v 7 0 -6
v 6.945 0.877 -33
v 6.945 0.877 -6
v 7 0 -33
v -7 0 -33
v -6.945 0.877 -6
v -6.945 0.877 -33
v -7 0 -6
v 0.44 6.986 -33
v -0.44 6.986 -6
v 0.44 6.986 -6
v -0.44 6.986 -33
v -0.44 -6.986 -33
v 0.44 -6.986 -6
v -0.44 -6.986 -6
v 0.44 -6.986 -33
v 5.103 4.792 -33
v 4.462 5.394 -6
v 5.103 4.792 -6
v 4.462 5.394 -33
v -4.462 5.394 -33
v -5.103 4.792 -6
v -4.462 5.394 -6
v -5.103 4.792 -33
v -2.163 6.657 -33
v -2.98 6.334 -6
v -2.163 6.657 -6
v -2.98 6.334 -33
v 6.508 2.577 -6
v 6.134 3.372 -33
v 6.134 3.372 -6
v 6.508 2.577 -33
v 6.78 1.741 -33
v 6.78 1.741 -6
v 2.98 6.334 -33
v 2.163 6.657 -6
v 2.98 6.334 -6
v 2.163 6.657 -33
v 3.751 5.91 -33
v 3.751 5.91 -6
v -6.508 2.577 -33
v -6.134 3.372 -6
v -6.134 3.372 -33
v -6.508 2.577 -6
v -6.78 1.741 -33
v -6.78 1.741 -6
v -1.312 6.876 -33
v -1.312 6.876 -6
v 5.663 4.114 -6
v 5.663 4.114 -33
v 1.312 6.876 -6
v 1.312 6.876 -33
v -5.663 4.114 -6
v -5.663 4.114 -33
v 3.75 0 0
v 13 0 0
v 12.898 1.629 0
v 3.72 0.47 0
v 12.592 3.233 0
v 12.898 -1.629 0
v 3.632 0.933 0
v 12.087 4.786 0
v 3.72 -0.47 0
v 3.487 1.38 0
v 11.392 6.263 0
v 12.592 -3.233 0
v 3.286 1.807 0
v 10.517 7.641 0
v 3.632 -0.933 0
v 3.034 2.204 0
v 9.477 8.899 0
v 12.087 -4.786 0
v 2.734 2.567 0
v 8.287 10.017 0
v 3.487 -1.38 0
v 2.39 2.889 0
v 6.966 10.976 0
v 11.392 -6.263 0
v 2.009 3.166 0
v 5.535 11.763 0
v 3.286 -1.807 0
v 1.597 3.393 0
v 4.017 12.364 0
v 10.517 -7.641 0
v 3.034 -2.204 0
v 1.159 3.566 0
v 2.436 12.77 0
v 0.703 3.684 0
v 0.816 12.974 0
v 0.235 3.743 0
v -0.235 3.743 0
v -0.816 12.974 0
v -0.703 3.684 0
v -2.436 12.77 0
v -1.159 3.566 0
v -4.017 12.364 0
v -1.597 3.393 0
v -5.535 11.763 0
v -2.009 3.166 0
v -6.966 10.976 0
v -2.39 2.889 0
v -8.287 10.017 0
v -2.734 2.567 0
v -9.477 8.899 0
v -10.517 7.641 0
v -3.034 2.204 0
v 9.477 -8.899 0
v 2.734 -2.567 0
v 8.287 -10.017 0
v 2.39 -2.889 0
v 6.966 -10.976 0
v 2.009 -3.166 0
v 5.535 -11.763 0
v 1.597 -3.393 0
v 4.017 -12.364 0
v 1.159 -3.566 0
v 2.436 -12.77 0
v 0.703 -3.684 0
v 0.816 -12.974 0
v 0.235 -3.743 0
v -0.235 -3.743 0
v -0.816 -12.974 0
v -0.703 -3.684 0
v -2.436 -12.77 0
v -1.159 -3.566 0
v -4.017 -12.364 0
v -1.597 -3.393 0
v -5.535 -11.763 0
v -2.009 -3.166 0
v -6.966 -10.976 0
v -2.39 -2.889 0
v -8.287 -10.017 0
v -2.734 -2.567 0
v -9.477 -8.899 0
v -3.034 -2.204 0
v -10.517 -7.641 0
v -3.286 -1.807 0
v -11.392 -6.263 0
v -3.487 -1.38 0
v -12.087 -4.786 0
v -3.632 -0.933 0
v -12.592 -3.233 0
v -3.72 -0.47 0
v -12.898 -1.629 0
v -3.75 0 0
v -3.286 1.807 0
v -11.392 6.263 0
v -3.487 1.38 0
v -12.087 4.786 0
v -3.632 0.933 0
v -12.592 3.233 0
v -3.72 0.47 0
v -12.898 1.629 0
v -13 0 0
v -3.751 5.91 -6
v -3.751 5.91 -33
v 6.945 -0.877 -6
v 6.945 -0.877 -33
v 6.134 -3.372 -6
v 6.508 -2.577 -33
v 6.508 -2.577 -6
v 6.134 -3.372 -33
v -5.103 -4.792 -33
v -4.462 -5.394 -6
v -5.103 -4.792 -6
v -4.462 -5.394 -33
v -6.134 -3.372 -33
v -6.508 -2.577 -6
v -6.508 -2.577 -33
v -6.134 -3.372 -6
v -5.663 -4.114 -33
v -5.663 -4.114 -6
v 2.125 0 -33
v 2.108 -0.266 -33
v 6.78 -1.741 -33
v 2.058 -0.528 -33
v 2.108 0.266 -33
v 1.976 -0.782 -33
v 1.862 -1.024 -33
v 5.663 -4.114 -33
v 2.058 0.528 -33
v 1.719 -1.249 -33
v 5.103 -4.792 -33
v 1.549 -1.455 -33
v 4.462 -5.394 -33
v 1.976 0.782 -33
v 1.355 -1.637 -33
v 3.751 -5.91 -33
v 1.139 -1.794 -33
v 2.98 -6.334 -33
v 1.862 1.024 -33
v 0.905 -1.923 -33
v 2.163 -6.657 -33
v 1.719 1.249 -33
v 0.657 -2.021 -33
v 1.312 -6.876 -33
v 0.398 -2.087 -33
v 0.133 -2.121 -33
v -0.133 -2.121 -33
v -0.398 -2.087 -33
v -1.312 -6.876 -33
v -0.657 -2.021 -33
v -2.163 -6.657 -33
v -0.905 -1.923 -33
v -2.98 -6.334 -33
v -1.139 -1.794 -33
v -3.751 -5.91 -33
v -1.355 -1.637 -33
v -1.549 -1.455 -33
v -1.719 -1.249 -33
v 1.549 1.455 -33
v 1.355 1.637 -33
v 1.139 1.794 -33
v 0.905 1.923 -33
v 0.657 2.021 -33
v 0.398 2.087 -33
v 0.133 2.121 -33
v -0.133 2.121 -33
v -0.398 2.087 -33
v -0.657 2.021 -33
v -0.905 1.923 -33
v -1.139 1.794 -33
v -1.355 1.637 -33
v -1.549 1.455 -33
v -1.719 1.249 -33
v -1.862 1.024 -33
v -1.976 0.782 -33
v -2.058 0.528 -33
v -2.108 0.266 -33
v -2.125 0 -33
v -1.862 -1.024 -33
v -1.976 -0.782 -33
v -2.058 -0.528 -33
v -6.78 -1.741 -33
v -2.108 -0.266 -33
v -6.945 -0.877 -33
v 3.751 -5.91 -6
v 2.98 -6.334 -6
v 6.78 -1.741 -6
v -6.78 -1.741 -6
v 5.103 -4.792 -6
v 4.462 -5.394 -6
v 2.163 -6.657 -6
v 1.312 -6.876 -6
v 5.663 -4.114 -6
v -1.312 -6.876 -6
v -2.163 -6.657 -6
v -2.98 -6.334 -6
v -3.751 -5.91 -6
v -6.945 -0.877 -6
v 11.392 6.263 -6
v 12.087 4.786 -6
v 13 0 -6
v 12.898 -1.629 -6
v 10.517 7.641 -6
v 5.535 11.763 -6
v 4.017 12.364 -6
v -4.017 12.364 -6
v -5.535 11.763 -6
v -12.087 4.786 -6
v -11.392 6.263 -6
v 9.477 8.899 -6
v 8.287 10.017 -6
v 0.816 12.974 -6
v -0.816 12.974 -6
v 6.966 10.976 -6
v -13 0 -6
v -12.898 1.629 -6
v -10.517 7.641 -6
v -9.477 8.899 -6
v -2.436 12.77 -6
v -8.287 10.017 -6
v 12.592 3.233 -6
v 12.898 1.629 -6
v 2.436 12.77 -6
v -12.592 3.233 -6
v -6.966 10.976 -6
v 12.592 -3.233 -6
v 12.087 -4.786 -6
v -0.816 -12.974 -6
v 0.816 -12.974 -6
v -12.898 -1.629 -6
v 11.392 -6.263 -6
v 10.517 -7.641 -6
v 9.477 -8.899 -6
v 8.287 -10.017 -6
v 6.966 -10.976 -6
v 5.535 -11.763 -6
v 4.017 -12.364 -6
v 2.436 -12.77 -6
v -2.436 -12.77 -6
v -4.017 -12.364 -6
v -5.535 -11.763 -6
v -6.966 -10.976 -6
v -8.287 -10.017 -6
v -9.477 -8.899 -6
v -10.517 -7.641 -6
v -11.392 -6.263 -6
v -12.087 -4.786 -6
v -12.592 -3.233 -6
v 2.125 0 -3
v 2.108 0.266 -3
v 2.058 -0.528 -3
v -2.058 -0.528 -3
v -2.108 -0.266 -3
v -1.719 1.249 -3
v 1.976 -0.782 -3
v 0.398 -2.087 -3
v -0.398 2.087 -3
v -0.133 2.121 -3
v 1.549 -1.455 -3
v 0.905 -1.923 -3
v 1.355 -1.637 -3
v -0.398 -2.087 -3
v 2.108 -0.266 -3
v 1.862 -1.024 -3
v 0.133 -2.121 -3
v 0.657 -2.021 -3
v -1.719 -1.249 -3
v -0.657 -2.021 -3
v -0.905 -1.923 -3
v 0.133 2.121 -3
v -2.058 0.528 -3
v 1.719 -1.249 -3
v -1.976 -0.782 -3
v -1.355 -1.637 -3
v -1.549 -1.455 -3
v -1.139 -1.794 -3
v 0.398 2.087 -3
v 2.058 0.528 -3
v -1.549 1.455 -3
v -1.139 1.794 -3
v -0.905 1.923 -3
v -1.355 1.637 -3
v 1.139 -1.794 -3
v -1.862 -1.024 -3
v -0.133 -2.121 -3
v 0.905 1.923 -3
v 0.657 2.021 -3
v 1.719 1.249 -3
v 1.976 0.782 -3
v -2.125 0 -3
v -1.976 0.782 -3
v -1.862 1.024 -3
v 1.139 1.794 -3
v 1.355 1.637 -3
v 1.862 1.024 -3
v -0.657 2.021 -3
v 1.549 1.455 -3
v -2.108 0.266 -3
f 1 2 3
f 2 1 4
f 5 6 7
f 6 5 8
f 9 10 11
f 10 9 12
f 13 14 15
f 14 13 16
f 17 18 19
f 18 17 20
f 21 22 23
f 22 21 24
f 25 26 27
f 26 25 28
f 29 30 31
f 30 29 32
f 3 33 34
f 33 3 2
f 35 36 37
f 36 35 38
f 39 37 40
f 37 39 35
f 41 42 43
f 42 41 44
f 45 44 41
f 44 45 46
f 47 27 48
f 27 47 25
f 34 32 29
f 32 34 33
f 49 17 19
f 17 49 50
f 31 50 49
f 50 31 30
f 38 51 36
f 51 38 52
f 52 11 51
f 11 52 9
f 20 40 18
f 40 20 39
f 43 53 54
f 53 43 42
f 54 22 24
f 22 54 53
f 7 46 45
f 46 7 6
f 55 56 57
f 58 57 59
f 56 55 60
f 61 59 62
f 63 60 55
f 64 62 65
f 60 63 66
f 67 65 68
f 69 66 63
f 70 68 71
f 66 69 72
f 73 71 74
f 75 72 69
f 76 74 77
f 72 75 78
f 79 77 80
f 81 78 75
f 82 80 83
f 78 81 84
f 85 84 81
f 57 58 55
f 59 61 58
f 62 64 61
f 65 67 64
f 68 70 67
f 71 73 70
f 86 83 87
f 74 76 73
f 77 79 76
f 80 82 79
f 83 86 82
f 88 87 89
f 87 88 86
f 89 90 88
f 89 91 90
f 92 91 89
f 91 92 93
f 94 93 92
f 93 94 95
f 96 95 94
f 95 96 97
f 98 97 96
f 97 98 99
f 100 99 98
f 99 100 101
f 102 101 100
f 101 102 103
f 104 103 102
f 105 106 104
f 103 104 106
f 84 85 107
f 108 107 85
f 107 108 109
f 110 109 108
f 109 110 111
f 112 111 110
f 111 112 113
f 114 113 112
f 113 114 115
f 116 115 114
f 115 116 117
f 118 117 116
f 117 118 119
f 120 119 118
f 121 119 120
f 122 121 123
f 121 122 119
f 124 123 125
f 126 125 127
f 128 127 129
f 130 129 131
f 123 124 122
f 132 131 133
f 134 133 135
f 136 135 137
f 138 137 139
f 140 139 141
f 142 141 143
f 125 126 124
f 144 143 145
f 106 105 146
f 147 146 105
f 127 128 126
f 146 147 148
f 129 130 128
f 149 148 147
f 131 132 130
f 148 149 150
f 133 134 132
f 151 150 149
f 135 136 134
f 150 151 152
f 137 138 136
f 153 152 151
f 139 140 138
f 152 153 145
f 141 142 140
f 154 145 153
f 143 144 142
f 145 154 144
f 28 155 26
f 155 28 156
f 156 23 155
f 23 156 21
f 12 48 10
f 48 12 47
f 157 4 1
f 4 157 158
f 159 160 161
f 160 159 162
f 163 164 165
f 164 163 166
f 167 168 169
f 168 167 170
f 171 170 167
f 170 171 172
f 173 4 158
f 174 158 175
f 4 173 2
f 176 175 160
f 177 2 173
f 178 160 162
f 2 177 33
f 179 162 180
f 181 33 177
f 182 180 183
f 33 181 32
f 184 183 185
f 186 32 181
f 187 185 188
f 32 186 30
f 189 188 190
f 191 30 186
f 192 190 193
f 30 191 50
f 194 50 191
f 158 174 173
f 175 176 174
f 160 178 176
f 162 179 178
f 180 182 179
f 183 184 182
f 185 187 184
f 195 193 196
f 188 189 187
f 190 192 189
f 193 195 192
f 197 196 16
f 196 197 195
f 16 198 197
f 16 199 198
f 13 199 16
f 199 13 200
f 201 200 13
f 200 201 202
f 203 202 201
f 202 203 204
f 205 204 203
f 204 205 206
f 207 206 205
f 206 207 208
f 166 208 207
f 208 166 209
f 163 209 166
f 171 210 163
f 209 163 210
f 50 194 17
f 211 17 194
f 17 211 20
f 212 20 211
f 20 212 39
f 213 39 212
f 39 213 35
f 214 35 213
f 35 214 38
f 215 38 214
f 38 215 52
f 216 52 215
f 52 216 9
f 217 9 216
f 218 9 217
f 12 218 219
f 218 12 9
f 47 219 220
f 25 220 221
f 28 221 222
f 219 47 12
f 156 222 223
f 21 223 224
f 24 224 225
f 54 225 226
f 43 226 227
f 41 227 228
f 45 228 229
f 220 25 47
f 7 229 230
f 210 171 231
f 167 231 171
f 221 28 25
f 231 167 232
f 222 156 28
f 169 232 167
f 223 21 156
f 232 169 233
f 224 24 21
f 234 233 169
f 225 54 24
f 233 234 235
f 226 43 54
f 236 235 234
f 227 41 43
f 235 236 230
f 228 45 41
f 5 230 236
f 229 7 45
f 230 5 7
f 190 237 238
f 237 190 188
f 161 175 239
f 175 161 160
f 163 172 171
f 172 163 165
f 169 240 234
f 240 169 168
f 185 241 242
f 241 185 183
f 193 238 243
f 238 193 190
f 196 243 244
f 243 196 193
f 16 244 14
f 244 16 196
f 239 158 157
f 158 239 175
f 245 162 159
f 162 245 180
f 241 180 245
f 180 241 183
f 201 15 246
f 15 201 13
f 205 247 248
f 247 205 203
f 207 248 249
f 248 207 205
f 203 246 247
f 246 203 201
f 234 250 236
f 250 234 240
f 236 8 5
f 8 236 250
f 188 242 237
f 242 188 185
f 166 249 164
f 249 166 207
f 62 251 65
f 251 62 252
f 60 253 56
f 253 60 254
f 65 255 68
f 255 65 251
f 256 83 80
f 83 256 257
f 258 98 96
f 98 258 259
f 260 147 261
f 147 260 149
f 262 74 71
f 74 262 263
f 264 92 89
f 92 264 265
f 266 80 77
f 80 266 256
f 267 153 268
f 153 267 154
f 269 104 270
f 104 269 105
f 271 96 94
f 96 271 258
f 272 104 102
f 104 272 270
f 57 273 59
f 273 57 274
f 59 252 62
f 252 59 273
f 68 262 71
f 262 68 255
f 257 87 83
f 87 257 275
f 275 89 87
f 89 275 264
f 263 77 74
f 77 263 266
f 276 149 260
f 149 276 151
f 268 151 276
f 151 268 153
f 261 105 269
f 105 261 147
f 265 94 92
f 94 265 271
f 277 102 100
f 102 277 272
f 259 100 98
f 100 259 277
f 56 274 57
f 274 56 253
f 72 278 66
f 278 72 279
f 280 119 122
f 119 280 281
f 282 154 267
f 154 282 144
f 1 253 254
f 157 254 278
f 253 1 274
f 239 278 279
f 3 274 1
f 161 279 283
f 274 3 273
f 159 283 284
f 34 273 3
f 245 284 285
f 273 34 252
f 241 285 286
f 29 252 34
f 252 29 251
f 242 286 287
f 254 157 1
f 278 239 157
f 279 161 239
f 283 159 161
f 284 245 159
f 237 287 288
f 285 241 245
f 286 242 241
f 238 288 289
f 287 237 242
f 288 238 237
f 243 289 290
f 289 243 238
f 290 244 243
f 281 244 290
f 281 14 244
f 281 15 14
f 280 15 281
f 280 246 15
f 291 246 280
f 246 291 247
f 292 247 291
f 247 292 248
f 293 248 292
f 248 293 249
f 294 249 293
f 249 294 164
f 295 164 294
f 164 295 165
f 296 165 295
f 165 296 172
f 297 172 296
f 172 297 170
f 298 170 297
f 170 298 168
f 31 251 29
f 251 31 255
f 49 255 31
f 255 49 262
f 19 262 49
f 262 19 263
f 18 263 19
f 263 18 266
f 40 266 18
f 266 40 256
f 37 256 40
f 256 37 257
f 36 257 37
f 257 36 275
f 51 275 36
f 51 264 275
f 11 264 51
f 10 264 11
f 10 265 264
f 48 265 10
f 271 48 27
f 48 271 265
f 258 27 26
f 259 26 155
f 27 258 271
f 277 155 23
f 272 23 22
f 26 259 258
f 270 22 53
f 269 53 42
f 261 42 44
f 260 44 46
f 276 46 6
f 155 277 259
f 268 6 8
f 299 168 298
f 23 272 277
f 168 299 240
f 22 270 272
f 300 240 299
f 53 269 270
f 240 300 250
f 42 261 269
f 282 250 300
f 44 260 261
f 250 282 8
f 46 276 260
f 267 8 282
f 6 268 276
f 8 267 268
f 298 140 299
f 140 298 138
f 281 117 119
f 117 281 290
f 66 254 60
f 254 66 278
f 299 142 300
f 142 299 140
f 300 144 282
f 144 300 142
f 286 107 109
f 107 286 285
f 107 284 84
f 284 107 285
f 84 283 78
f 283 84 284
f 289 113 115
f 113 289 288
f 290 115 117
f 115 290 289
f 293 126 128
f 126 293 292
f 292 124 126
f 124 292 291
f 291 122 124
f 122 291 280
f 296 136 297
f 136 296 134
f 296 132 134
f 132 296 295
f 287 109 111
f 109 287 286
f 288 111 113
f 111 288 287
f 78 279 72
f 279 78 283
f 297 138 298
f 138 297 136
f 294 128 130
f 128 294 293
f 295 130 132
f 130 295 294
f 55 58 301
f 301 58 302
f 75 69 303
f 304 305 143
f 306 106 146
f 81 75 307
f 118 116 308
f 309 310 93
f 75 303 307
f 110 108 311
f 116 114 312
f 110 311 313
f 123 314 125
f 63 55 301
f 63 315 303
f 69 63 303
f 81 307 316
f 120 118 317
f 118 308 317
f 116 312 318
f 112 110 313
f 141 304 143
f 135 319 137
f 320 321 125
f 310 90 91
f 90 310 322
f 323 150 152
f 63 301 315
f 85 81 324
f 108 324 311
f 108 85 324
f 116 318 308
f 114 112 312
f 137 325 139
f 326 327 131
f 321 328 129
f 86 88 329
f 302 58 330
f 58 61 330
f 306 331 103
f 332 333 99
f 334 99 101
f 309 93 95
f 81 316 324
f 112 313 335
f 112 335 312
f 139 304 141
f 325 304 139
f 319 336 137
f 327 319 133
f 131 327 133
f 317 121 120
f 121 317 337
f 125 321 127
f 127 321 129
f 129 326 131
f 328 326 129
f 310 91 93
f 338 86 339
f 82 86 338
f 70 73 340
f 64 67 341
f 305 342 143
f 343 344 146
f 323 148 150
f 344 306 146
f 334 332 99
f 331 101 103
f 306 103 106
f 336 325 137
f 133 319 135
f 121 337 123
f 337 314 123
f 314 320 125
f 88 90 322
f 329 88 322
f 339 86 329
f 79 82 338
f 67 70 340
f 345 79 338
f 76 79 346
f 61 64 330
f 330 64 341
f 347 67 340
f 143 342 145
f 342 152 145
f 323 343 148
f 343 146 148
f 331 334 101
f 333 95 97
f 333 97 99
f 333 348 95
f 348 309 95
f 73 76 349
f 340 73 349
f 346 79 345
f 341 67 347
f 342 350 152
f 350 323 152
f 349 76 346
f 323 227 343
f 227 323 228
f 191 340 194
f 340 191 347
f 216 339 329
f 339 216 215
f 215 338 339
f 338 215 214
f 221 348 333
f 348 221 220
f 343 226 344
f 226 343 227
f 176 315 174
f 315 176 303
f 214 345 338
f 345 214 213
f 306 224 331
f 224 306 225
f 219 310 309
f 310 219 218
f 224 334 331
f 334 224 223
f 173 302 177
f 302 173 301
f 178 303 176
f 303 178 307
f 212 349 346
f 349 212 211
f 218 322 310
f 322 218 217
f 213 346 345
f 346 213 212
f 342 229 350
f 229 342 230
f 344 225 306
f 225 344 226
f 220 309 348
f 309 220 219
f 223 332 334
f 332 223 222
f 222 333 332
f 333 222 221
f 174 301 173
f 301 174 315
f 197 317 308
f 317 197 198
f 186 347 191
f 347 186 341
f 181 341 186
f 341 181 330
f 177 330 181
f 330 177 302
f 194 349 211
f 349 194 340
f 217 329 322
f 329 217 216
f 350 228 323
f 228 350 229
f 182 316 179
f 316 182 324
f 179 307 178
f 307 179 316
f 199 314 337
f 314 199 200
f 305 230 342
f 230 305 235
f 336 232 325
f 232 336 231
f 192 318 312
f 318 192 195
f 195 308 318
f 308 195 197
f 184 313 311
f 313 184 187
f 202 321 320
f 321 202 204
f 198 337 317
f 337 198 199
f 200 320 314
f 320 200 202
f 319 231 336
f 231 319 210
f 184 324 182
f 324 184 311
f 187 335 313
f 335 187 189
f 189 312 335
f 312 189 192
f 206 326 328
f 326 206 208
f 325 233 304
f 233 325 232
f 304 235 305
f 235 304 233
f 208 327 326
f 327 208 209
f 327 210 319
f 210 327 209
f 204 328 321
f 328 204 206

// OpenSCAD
$fn = 50;


difference() {
	union() {
		translate(v = [0, 0, -33.0000000000]) {
			cylinder(h = 33, r = 7.0000000000);
		}
		translate(v = [0, 0, -6.0000000000]) {
			cylinder(h = 6, r = 13.0000000000);
		}
	}
	union() {
		translate(v = [0, 0, 0]) {
			rotate(a = [0, 0, 0]) {
				difference() {
					union() {
						#translate(v = [0, 0, -33.0000000000]) {
							cylinder(h = 33, r = 2.0000000000);
						}
						#translate(v = [0, 0, -3]) {
							cylinder(h = 3, r = 7.0000000000, r1 = 2.1250000000, r2 = 3.7500000000);
						}
						#translate(v = [0, 0, -33.0000000000]) {
							cylinder(h = 33, r = 2.1250000000);
						}
						#translate(v = [0, 0, -33.0000000000]) {
							cylinder(h = 33, r = 2.0000000000);
						}
					}
					union();
				}
			}
		}
	}
}
